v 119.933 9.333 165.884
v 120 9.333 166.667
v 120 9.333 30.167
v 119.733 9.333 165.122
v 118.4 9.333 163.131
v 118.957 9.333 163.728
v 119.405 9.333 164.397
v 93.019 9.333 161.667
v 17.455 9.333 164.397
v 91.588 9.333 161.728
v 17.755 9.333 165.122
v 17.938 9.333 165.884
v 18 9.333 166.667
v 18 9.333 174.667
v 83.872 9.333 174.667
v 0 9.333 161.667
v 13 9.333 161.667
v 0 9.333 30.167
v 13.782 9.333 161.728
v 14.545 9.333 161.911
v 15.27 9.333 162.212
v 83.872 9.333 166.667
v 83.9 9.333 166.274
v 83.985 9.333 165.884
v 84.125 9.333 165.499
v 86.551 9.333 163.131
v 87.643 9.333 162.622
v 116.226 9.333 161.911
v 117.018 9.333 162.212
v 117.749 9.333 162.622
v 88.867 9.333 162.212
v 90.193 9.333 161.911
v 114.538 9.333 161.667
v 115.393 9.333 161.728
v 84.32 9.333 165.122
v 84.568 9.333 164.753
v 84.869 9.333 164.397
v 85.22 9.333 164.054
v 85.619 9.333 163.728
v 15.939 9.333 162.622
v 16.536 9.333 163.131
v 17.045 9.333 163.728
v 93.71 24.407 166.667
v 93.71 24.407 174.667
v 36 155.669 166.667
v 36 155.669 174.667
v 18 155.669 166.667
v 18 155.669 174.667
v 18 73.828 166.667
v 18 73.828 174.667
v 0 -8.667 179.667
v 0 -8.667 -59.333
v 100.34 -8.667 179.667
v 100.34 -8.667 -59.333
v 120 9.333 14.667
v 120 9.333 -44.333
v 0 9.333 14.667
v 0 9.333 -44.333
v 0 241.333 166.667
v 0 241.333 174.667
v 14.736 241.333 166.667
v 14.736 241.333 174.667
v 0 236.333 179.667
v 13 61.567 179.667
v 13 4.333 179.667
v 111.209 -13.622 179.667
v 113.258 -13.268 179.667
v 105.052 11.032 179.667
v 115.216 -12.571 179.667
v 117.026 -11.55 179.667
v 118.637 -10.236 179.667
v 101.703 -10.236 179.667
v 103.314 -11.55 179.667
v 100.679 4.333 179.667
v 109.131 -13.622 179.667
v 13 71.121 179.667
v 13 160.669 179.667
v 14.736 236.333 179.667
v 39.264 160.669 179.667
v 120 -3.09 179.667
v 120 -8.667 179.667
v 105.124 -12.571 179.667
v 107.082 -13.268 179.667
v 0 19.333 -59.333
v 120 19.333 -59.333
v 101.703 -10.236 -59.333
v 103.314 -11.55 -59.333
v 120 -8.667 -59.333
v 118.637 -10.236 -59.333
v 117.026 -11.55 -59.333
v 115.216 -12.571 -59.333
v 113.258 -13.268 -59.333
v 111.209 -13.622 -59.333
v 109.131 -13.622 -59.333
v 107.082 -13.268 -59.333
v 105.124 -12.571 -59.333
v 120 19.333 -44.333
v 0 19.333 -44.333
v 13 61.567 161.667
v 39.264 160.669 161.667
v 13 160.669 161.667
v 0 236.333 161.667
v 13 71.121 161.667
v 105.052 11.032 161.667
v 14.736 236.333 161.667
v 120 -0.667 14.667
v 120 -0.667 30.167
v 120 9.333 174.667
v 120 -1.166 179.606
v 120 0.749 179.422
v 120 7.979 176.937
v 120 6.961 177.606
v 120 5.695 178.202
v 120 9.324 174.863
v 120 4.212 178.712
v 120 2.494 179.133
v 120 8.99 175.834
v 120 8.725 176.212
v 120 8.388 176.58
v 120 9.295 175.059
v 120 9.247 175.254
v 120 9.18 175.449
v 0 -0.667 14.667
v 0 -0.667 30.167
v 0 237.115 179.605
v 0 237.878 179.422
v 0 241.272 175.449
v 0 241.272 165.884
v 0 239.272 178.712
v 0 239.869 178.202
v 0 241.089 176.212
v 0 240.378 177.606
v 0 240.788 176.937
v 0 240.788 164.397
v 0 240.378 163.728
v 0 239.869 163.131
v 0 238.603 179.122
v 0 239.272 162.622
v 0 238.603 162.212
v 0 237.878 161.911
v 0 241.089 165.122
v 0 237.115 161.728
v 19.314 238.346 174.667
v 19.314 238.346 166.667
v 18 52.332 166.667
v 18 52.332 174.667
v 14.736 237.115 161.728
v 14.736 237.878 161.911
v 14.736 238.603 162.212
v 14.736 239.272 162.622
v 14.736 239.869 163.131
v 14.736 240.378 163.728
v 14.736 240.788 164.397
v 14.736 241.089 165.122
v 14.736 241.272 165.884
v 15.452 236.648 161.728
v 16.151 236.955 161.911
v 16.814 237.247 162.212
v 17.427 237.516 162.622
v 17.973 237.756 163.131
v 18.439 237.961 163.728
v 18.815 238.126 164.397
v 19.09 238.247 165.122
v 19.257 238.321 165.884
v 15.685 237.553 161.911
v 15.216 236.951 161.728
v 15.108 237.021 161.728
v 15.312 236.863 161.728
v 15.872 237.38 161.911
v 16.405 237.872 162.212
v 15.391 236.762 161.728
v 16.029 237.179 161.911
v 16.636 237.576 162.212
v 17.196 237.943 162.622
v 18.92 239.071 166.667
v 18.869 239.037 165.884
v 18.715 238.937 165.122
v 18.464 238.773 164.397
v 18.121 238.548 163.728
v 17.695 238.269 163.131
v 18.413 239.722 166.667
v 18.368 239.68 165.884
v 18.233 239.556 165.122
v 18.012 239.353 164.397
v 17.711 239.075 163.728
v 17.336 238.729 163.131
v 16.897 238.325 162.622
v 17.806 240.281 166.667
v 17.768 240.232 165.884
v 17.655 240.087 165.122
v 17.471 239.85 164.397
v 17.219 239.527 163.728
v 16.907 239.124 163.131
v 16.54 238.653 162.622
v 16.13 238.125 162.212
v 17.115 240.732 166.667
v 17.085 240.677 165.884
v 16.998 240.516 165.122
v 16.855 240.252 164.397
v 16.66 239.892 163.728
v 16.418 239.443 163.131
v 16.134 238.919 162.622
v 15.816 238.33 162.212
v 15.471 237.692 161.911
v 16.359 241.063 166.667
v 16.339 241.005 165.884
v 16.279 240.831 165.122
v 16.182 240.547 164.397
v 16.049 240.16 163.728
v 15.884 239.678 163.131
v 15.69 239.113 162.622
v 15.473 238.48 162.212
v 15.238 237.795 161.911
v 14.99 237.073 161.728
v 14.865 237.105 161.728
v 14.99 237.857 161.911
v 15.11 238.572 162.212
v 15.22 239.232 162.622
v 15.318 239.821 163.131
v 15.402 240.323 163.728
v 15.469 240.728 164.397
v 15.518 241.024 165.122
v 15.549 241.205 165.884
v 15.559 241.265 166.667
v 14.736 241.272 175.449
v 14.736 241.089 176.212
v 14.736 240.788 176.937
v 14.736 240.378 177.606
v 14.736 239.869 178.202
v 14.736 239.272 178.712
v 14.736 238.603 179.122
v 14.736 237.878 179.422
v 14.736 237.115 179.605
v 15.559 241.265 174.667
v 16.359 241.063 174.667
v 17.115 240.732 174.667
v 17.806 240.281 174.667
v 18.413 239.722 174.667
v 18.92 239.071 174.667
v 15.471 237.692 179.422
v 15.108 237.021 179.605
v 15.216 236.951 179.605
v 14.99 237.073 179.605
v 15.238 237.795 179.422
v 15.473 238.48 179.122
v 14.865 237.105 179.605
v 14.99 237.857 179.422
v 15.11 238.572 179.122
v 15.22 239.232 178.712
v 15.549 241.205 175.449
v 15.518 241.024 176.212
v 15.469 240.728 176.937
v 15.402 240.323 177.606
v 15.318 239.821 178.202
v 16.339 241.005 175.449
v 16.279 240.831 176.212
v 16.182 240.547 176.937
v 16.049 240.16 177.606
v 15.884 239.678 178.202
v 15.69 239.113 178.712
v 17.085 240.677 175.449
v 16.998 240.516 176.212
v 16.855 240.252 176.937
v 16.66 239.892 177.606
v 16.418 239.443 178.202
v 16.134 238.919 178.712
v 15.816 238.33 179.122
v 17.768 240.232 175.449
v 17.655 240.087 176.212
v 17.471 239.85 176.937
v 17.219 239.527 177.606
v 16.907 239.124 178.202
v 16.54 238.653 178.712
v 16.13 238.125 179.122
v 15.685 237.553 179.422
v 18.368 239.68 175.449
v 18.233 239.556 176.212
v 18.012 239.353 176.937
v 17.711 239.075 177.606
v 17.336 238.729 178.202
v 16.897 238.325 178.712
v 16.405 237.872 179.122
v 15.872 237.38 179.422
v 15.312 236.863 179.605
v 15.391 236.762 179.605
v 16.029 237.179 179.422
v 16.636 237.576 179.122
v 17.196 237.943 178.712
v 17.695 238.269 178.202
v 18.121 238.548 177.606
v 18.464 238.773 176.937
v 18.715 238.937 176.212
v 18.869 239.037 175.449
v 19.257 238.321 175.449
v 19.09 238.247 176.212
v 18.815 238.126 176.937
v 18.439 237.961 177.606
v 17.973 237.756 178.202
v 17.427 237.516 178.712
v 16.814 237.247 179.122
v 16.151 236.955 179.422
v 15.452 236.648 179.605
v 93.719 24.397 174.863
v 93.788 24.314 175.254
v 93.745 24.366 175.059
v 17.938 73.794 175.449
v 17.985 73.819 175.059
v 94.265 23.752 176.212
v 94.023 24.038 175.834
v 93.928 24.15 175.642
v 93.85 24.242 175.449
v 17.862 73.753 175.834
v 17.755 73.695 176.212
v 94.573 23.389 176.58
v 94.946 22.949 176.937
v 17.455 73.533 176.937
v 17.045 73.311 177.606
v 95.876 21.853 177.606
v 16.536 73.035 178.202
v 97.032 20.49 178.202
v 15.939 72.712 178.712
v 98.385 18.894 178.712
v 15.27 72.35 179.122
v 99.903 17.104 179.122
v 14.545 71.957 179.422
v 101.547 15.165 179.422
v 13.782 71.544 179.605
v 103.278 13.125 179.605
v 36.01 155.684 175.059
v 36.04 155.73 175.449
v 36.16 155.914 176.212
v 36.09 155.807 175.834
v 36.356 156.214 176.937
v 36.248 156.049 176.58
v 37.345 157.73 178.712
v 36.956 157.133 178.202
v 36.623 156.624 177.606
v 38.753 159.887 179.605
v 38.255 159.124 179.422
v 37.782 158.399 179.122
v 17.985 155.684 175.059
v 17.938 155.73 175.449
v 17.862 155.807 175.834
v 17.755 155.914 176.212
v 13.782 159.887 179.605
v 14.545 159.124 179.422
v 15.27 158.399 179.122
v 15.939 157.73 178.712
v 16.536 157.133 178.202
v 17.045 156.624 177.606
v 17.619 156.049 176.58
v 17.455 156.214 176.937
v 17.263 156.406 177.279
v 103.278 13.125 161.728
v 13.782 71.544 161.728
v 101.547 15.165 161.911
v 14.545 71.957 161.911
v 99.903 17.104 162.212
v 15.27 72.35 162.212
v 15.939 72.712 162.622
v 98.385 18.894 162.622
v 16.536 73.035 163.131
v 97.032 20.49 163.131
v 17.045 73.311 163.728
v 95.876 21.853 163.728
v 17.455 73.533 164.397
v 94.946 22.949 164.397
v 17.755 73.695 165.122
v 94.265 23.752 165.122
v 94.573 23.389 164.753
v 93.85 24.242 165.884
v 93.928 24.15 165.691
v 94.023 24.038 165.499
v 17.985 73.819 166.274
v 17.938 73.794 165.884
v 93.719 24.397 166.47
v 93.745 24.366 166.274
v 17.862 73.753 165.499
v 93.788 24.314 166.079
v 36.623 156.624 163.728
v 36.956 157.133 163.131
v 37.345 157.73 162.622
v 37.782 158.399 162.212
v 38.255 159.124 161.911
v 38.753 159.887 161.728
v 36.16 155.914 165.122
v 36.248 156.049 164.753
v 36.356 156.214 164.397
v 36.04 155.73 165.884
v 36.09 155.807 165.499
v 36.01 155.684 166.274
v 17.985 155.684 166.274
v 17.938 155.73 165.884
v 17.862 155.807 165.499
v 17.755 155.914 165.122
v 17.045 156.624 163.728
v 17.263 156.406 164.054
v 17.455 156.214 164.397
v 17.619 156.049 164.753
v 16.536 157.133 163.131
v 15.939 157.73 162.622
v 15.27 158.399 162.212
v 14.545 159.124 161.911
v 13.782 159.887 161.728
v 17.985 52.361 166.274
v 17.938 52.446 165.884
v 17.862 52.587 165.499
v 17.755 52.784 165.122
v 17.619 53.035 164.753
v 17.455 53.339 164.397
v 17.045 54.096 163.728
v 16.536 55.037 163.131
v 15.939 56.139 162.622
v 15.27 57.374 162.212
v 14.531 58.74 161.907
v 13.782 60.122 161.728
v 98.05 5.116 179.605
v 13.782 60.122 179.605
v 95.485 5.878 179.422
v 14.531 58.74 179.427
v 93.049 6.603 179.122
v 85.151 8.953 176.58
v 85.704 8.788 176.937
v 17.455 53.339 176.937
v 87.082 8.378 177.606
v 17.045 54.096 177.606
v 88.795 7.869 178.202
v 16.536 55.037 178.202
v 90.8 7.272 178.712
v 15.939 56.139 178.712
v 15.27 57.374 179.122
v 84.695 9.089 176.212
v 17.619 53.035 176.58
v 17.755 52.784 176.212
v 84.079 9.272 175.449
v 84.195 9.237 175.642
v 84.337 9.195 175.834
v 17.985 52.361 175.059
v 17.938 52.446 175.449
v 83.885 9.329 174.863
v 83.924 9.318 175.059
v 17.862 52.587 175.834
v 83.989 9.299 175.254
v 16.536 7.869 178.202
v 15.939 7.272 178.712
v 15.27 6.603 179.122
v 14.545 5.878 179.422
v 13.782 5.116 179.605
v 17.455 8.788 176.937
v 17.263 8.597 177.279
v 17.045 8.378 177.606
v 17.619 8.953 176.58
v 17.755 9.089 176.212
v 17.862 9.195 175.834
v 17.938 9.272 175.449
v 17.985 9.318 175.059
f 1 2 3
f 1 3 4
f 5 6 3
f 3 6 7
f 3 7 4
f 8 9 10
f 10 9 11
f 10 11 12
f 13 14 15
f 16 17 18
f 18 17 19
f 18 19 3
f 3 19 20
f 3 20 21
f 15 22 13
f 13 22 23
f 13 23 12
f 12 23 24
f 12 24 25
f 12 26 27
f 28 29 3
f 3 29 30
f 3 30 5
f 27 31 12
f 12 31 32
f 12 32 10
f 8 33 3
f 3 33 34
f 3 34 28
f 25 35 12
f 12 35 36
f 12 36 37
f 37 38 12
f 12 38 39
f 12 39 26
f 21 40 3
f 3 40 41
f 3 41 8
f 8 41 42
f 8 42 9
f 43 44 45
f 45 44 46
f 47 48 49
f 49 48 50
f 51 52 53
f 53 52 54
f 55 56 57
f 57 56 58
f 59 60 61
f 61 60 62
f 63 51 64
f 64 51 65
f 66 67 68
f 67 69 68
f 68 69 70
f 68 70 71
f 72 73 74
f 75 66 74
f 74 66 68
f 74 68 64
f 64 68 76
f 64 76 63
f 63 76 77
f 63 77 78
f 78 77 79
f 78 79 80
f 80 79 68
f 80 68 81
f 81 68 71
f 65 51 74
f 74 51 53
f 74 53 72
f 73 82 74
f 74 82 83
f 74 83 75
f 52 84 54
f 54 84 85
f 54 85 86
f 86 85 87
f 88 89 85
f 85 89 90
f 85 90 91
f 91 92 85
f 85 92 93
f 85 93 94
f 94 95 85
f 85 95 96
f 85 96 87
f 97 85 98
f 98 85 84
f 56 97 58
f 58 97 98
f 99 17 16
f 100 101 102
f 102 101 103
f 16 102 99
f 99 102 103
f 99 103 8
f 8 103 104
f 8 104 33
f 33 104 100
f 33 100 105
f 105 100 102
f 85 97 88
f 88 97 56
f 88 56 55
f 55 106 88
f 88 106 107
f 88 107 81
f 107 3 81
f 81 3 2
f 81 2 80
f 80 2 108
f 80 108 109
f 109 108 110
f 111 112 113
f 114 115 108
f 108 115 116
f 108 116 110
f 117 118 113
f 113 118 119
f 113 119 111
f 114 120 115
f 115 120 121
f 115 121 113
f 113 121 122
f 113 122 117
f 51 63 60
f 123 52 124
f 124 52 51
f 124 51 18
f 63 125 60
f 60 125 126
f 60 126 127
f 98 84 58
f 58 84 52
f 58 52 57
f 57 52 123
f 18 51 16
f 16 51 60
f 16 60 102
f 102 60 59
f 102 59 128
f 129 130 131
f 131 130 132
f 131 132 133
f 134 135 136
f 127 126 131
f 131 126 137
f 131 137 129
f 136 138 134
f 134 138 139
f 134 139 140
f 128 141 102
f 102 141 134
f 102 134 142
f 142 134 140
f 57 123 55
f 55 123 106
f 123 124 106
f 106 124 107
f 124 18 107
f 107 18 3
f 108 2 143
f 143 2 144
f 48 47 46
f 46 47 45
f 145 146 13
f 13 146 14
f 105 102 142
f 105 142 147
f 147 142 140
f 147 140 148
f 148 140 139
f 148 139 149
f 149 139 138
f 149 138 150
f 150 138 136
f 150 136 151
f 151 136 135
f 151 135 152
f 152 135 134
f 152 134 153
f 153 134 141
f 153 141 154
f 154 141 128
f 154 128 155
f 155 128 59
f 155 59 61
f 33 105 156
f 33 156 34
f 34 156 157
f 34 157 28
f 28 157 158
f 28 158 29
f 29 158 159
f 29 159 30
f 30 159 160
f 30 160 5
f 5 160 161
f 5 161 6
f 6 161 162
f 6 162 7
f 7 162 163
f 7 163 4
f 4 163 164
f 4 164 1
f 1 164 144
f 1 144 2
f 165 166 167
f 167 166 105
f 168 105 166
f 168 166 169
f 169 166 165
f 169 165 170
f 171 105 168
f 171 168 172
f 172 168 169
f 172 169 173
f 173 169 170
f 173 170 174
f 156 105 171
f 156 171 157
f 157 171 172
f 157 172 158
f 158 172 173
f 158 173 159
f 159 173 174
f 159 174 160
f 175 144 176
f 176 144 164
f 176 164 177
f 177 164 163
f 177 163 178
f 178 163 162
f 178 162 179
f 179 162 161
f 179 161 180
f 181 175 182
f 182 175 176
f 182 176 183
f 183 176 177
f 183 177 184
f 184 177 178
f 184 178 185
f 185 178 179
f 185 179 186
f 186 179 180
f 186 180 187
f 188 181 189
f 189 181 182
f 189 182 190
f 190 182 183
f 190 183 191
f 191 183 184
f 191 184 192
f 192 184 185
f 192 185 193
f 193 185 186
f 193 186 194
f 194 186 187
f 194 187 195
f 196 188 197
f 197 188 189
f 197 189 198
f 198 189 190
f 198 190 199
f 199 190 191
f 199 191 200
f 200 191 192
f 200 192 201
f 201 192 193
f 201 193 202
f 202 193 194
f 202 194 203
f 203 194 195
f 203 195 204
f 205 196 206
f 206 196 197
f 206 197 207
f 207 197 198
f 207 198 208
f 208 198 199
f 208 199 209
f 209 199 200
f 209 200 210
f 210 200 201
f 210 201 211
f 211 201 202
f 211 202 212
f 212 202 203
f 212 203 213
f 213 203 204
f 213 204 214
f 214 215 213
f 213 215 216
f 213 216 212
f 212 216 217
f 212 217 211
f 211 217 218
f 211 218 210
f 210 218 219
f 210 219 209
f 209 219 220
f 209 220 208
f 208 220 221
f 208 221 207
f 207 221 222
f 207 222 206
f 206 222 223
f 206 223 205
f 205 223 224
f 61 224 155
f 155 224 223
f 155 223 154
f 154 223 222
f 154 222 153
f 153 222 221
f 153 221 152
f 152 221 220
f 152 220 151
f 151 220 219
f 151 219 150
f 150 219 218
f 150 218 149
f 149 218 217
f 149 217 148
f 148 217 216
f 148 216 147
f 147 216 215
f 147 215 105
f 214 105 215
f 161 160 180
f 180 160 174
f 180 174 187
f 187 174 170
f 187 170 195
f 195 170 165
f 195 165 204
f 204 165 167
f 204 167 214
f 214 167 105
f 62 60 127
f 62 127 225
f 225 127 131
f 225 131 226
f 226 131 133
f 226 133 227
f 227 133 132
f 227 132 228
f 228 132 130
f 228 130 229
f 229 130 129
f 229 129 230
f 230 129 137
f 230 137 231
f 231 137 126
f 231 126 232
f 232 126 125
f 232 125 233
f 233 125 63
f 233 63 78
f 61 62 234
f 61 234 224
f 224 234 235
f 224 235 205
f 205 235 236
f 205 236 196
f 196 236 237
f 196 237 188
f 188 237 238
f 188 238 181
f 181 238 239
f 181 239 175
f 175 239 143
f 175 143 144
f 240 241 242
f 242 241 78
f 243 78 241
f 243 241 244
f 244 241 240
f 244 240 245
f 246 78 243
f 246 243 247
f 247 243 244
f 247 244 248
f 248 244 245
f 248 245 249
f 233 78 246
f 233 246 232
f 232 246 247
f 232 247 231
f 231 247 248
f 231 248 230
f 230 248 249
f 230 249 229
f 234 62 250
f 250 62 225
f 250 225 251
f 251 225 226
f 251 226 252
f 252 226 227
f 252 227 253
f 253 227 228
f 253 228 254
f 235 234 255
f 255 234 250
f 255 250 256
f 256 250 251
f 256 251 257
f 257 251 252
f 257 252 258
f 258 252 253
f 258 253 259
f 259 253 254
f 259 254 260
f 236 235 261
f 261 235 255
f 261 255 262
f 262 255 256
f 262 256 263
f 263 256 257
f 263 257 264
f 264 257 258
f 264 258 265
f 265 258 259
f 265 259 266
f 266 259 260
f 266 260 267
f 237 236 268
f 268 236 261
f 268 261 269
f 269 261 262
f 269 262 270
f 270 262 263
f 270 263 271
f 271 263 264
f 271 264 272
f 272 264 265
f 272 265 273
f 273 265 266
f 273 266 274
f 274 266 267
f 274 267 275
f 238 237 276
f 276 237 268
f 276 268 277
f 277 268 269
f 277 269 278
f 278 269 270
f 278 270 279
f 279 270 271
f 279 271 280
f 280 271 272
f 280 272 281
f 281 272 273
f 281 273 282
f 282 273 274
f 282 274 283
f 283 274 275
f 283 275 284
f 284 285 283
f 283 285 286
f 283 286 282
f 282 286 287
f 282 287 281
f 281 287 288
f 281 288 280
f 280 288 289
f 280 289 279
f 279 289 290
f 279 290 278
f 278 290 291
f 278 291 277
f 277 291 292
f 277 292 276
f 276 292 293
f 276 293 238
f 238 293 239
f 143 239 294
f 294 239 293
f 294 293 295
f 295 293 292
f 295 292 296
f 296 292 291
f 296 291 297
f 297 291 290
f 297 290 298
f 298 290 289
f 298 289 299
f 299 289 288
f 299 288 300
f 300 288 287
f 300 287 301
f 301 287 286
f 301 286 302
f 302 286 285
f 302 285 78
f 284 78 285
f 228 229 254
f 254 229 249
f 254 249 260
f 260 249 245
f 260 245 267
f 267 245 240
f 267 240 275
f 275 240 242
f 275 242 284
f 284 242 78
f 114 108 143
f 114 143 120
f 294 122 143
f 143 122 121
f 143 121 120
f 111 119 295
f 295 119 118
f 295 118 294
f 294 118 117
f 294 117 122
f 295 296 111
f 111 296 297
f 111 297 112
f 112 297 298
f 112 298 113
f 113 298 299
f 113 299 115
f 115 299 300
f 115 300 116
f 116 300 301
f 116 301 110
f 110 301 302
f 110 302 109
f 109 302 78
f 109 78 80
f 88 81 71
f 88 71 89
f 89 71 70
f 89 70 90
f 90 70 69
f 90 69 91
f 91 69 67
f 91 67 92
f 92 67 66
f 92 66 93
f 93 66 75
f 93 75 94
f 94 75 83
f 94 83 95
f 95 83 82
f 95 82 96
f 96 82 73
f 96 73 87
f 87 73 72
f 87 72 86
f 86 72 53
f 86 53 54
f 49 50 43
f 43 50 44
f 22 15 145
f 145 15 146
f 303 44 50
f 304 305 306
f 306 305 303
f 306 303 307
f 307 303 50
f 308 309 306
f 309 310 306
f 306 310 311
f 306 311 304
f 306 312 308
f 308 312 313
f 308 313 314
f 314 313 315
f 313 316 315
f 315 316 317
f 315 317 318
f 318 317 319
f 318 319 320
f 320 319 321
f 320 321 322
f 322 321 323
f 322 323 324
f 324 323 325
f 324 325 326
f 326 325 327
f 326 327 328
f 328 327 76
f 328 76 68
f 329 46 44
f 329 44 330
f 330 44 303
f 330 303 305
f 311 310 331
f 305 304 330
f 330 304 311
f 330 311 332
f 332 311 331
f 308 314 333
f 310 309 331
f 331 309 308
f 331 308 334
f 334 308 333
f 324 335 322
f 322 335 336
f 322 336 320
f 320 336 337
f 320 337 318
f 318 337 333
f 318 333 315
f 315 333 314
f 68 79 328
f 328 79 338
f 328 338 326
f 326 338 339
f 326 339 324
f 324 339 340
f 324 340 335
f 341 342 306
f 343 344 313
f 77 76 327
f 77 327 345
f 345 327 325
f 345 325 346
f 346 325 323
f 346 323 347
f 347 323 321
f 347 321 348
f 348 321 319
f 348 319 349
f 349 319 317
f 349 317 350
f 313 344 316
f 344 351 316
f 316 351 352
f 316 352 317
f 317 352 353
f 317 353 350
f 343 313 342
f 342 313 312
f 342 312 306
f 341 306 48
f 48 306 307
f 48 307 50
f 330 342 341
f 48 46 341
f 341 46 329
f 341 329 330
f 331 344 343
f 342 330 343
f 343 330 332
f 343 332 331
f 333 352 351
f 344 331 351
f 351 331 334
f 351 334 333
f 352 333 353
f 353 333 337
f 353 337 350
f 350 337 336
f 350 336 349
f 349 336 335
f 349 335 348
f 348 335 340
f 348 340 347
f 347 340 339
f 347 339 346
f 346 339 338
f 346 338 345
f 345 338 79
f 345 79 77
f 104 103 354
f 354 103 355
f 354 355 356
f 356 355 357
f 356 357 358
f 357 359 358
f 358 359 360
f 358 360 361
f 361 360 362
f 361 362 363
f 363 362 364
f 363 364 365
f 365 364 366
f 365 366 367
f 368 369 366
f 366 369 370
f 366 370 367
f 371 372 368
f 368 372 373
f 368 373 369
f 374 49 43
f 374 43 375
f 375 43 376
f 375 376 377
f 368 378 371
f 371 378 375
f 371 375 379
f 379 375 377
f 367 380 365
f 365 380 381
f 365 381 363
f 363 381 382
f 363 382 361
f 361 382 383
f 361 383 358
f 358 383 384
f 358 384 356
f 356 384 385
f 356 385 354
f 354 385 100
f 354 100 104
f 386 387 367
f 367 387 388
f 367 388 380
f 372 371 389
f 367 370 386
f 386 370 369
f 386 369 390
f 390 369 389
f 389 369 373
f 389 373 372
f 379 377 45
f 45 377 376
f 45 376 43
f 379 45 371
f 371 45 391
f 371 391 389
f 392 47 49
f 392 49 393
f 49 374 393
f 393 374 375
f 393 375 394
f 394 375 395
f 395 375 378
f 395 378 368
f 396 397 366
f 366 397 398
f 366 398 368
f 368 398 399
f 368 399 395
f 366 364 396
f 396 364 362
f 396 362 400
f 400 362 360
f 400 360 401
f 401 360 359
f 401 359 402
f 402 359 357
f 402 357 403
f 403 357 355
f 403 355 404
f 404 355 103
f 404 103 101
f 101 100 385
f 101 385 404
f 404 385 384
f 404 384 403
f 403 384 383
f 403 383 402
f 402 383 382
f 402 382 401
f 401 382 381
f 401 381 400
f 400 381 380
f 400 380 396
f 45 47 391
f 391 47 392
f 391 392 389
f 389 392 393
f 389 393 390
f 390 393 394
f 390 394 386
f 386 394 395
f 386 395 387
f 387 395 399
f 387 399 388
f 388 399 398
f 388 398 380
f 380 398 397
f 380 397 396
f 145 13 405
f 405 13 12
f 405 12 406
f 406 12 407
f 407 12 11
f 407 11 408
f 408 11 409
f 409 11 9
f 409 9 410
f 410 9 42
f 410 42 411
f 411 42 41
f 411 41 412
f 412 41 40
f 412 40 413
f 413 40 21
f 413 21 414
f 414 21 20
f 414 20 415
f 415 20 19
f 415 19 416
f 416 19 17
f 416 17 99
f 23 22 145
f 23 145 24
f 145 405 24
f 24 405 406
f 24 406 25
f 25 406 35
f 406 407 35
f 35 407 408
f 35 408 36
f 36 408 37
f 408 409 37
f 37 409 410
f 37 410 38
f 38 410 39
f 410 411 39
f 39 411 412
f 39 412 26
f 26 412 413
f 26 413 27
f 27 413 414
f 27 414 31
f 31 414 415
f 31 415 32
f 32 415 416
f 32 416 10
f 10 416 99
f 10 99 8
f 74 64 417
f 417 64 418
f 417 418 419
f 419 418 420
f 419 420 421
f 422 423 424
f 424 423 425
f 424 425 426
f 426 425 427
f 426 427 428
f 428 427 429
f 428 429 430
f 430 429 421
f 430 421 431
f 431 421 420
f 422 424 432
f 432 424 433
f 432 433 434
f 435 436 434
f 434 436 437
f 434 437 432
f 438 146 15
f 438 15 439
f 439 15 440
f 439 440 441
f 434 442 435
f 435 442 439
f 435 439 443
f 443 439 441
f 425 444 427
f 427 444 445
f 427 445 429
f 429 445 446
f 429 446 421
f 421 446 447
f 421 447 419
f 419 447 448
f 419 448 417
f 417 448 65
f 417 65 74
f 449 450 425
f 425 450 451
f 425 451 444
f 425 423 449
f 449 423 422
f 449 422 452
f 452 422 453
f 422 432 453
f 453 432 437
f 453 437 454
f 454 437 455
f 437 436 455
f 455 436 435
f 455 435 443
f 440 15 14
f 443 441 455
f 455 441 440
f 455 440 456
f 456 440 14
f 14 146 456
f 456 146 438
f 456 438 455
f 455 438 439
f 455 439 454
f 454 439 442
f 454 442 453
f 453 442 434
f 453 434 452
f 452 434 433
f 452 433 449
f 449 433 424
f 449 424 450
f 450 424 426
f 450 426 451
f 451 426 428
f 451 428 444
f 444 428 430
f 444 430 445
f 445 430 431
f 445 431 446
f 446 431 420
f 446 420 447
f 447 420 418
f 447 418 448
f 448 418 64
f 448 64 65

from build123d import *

# Parameters (mm, degrees)
EXTRUDE_1_DEPTH     = 120
SKETCH_2_W          = 15.5
SKETCH_2_H          = 10
CUT_EXTRUDE_1_DEPTH = 324.916484435
CUT_EXTRUDE_2_DEPTH = 40
CUT_EXTRUDE_3_DEPTH = 40
FILLET_16_R         = 5
EXTRUDE_2_DEPTH     = 239
EXTRUDE_3_DEPTH     = 18
FILLET_17_R         = 5


with BuildPart() as part:
    # 草圖1 → 填料-伸長1 (new body)
    with BuildSketch(Plane(origin=(0, 0, 0), x_dir=(0, 0, -1), z_dir=(1, 0, 0))):
        Polygon((-179.666666667, 241.333333333), (-179.666666667, -8.666666667), (59.333333333, -8.666666667), (59.333333333, 9.333333333), (59.333333333, 19.333333333), (44.333333333, 19.333333333), (44.333333333, 9.333333333), (-161.666666667, 9.333333333), (-161.666666667, 241.333333333), align=None)
    extrude(amount=EXTRUDE_1_DEPTH)

    # 草圖2 → 除料-伸長1 (cut, through all)
    with BuildSketch(Plane(origin=(120, 0, 0), x_dir=(0, 0, -1), z_dir=(1, 0, 0))):
        with Locations((-22.416666667, 4.333333333)):
            Rectangle(SKETCH_2_W, SKETCH_2_H)
    extrude(amount=-CUT_EXTRUDE_1_DEPTH, mode=Mode.SUBTRACT)

    # 草圖4 → 除料-伸長2 (cut)
    with BuildSketch(Plane.XY.offset(179.666666667)):
        Polygon((120, 241.333333333), (18, 241.333333333), (120, 9.333333333), align=None)
    extrude(amount=-CUT_EXTRUDE_2_DEPTH, mode=Mode.SUBTRACT)

    # 草圖5 → 除料-伸長3 (cut)
    with BuildSketch(Plane.XY.offset(179.666666667)):
        Polygon((36, 155.668785671), (100.337138528, 9.333333333), (18, 9.333333333), (18, 155.668785671), align=None)
    extrude(amount=-CUT_EXTRUDE_3_DEPTH, mode=Mode.SUBTRACT)

    # 圓角16
    # the kernel refuses this fillet: 5 mm, written as the material it takes off along each edge
    with BuildSketch(Plane(origin=(14.736369898, 236.333333333, 166.666666667), x_dir=(0.9154313590233789, 0.40247413198441667, 0), z_dir=(0, 0, -1))) as fillet_16_piece_1_section:
        Polygon((0, 0), (FILLET_16_R, 0), (FILLET_16_R, -FILLET_16_R * 0.652726020499), (FILLET_16_R * 0.402474131984, -FILLET_16_R * 0.915431359023), align=None)
    fillet_16_piece_1 = extrude(amount=FILLET_16_R, mode=Mode.PRIVATE)
    fillet_16_piece_1 = fillet_16_piece_1 - Plane(origin=(14.736369898, 236.333333333, 166.666666667), x_dir=(-0.5465921093537591, -0.8373989885306815, 0), z_dir=(0, 0, -1)) * Sphere(FILLET_16_R, mode=Mode.PRIVATE)
    add(fillet_16_piece_1, mode=Mode.SUBTRACT)
    with BuildSketch(Plane(origin=(14.736369898, 236.333333333, 174.666666667), x_dir=(0, 1, 0), z_dir=(0, 0, 1))) as fillet_16_piece_2_section:
        Polygon((0, 0), (FILLET_16_R, 0), (FILLET_16_R, -FILLET_16_R * 0.652726020499), (FILLET_16_R * 0.402474131984, -FILLET_16_R * 0.915431359023), align=None)
    fillet_16_piece_2 = extrude(amount=FILLET_16_R, mode=Mode.PRIVATE)
    fillet_16_piece_2 = fillet_16_piece_2 - Plane(origin=(14.736369898, 236.333333333, 174.666666667), x_dir=(-0.5465921093537591, -0.8373989885306815, 0), z_dir=(0, 0, 1)) * Sphere(FILLET_16_R, mode=Mode.PRIVATE)
    add(fillet_16_piece_2, mode=Mode.SUBTRACT)
    with BuildSketch(Plane(origin=(-12.5, 241.333333333, 161.666666667), x_dir=(0, 0, 1), z_dir=(1, 0, 0)), Plane(origin=(-12.5, 241.333333333, 179.666666667), x_dir=(0, -1, 0), z_dir=(1, 0, 0))) as fillet_16_piece_3:
        with BuildLine():
            CenterArc((FILLET_16_R, FILLET_16_R), FILLET_16_R, 180, 90)
            Line((0, FILLET_16_R), (0, 0))
            Line((0, 0), (FILLET_16_R, 0))
        make_face()
    extrude(amount=27.236369898, mode=Mode.SUBTRACT)
    with BuildSketch(Plane(origin=(18, 241.333333333, 174.666666667), x_dir=(-1, 0, 0), z_dir=(0, 0, -1))) as fillet_16_piece_4:
        with BuildLine():
            CenterArc((FILLET_16_R * 0.652726020499, -FILLET_16_R), FILLET_16_R, 90, 66.267060196)
            Line((-FILLET_16_R * 0.262705338524, -FILLET_16_R * 0.597525868016), (0, 0))
            Line((0, 0), (FILLET_16_R * 0.652726020499, 0))
        make_face()
    extrude(amount=8, mode=Mode.SUBTRACT)
    with BuildSketch(Plane(origin=(19.313526693, 238.345703993, 161.666666667), x_dir=(0, 0, 1), z_dir=(0.40247413198441667, -0.9154313590233789, 0))) as fillet_16_piece_5_section:
        with BuildLine():
            CenterArc((FILLET_16_R, FILLET_16_R), FILLET_16_R, 180, 90)
            Line((0, FILLET_16_R), (0, 0))
            Line((0, 0), (FILLET_16_R, 0))
        make_face()
    fillet_16_piece_5 = extrude(amount=262.668806653, mode=Mode.PRIVATE)
    fillet_16_piece_5 = split(fillet_16_piece_5, bisect_by=Plane(origin=(68.522420019, 9.333333333, 162.799850977), z_dir=(0, 1, 0)), keep=Keep.TOP, mode=Mode.PRIVATE)
    add(fillet_16_piece_5, mode=Mode.SUBTRACT)
    with BuildSketch(Plane(origin=(19.313526693, 238.345703993, 179.666666667), x_dir=(-0.9154313590233789, -0.40247413198441667, 5.6843418860808026e-15), z_dir=(0.40247413198441667, -0.9154313590233789, 0))) as fillet_16_piece_6:
        with BuildLine():
            CenterArc((FILLET_16_R, FILLET_16_R), FILLET_16_R, 180, 90)
            Line((0, FILLET_16_R), (0, 0))
            Line((0, 0), (FILLET_16_R, 0))
        make_face()
    extrude(amount=262.668806653, mode=Mode.SUBTRACT)

    # 草圖8 → 填料-伸長2 (add)
    with BuildSketch(Plane.XY.offset(179.666666667)):
        with BuildLine():
            ThreePointArc((110.17, -13.666666712), (115.684274668, -12.344840676), (120, -8.666666667))
            Line((120, -8.666666667), (110.17, -8.666666667))
            Line((110.17, -8.666666667), (110.17, -13.666666667))
        make_face()
        with BuildLine():
            Line((110.17, -13.666666667), (110.17, -8.666666667))
            Line((110.17, -8.666666667), (100.34, -8.666666667))
            ThreePointArc((100.34, -8.666666667), (104.655725332, -12.344840676), (110.17, -13.666666712))
        make_face()
        with BuildLine():
            ThreePointArc((110.17, -13.666666712), (115.684274668, -12.344840676), (120, -8.666666667))
            Line((120, -8.666666667), (110.17, -8.666666667))
            Line((110.17, -8.666666667), (110.17, -13.666666667))
        make_face()
        with BuildLine():
            Line((110.17, -13.666666667), (110.17, -8.666666667))
            Line((110.17, -8.666666667), (100.34, -8.666666667))
            ThreePointArc((100.34, -8.666666667), (104.655725332, -12.344840676), (110.17, -13.666666712))
        make_face()
    extrude(amount=-EXTRUDE_2_DEPTH)

    # 草圖9 → 填料-伸長3 (add)
    with BuildSketch(Plane.XY.offset(179.666666667)):
        Polygon((18, 63.079938443), (100.337138528, 9.333333333), (93.709875708, 24.407107589), (22.919522331, 70.616403134), (18, 73.827683351), align=None)
        Polygon((18, 52.332193536), (83.872125352, 9.333333333), (100.337138528, 9.333333333), (18, 63.079938443), align=None)
        Polygon((100.337138528, 9.333333333), (83.872125352, 9.333333333), (95.417616197, 1.796868643), align=None)
        Polygon((93.711170014, 24.406262715), (100.337138528, 9.333333333), (105.256660859, 16.869798024), align=None)
        Polygon((10.463535309, 67.999460774), (18, 63.079938443), (18, 73.827683351), (15.38305764, 75.535925465), align=None)
        Polygon((13.080477669, 55.543473753), (18, 52.332193536), (18, 63.079938443), align=None)
    extrude(amount=-EXTRUDE_3_DEPTH)

    # 圓角17
    fillet_17_edges = [part.edges().sort_by_distance(p)[0] for p in [
        (18, 30.832763435, 179.666666667),
        (18, 30.832763435, 161.666666667),
        (64.854937854, 90.03794663, 179.666666667),
        (64.854937854, 90.03794663, 161.666666667),
        (50.936062676, 30.832763435, 179.666666667),
        (55.854937854, 49.11739547, 179.666666667),
        (55.854937854, 49.11739547, 161.666666667),
        (50.936062676, 30.832763435, 161.666666667),
        (18, 114.748234511, 161.666666667),
        (27, 155.668785671, 161.666666667),
        (27, 155.668785671, 179.666666667),
        (18, 114.748234511, 179.666666667),
        (50.936062676, 9.333333333, 179.666666667),
    ]]
    fillet(fillet_17_edges, radius=FILLET_17_R)


solid = part.part
